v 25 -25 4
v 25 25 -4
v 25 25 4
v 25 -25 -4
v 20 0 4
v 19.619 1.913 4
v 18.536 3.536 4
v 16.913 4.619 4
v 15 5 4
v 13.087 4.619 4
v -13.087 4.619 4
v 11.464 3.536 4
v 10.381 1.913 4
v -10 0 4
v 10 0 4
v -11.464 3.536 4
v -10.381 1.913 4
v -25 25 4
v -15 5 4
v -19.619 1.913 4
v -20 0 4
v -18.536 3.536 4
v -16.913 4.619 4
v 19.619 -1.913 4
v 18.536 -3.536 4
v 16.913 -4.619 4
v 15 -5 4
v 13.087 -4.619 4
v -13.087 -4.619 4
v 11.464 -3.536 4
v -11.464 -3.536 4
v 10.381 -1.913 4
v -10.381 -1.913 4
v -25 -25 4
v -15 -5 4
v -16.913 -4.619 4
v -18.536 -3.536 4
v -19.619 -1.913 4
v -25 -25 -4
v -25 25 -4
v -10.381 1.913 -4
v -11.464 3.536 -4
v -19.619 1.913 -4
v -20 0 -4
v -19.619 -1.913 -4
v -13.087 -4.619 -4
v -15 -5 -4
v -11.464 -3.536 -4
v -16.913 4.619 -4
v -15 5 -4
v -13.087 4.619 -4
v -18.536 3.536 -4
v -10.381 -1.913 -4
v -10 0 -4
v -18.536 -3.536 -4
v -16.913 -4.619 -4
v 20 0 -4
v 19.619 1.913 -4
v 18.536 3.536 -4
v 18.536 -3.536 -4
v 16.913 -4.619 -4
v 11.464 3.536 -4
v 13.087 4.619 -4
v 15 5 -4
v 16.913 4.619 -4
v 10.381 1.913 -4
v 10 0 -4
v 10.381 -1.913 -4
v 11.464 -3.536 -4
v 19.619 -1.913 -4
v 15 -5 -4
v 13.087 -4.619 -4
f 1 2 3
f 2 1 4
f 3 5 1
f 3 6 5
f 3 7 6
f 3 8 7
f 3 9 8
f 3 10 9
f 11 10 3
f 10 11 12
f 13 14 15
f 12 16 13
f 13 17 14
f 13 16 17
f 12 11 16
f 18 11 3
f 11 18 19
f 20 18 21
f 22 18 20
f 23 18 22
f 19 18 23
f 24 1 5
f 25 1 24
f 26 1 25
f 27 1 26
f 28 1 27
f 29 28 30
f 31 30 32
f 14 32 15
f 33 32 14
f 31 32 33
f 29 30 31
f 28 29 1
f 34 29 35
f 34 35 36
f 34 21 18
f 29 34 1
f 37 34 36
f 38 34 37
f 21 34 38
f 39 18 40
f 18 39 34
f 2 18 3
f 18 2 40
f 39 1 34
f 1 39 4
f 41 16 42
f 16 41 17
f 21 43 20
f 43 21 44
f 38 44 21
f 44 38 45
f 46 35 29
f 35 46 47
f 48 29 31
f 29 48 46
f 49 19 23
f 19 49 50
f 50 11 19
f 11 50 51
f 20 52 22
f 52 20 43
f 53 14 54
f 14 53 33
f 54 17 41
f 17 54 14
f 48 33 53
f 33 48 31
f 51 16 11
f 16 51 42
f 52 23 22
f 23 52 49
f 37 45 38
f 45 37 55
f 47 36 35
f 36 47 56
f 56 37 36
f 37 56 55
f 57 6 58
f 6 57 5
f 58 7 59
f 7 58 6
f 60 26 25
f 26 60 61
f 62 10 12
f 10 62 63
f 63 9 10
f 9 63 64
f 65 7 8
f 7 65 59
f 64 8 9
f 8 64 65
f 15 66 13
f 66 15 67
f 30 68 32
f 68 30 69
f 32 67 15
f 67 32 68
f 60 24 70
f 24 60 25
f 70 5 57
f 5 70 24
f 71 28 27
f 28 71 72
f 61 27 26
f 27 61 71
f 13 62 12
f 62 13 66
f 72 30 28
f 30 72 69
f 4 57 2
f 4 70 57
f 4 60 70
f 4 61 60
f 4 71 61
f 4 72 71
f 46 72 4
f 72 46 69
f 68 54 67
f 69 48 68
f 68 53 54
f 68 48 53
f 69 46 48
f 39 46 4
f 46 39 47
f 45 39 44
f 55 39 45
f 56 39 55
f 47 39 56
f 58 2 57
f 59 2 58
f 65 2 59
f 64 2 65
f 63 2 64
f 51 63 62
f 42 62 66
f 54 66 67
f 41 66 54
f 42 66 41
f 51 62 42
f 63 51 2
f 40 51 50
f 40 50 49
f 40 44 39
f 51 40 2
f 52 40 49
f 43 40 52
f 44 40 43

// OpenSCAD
// Parameters for the flange plate
plate_length = 50;  // Length of the plate
plate_width = 50;   // Width of the plate
plate_thickness = 2; // Thickness of the plate (reduced to match the original model)
hole_diameter = 10; // Diameter of the holes
hole_spacing = 30;  // Distance between the centers of the two holes

// Function to create a single flange plate
module flange_plate() {
    difference() {
        // Base plate
        cube([plate_length, plate_width, plate_thickness], center = true);
        
        // Holes
        translate([-hole_spacing / 2, 0, 0])
            cylinder(h = plate_thickness + 1, d = hole_diameter, center = true);
        translate([hole_spacing / 2, 0, 0])
            cylinder(h = plate_thickness + 1, d = hole_diameter, center = true);
    }
}

// Assembly of the flange plates
module assembly() {
    // Layer 1: Top flange plate
    translate([0, 0, plate_thickness * 1.5])
        flange_plate();
    
    // Layer 2: Second flange plate
    translate([0, 0, plate_thickness * 0.5])
        flange_plate();
    
    // Layer 3: Third flange plate
    translate([0, 0, -plate_thickness * 0.5])
        flange_plate();
    
    // Layer 4: Bottom flange plate
    translate([0, 0, -plate_thickness * 1.5])
        flange_plate();
}

// Render the assembly
assembly();
